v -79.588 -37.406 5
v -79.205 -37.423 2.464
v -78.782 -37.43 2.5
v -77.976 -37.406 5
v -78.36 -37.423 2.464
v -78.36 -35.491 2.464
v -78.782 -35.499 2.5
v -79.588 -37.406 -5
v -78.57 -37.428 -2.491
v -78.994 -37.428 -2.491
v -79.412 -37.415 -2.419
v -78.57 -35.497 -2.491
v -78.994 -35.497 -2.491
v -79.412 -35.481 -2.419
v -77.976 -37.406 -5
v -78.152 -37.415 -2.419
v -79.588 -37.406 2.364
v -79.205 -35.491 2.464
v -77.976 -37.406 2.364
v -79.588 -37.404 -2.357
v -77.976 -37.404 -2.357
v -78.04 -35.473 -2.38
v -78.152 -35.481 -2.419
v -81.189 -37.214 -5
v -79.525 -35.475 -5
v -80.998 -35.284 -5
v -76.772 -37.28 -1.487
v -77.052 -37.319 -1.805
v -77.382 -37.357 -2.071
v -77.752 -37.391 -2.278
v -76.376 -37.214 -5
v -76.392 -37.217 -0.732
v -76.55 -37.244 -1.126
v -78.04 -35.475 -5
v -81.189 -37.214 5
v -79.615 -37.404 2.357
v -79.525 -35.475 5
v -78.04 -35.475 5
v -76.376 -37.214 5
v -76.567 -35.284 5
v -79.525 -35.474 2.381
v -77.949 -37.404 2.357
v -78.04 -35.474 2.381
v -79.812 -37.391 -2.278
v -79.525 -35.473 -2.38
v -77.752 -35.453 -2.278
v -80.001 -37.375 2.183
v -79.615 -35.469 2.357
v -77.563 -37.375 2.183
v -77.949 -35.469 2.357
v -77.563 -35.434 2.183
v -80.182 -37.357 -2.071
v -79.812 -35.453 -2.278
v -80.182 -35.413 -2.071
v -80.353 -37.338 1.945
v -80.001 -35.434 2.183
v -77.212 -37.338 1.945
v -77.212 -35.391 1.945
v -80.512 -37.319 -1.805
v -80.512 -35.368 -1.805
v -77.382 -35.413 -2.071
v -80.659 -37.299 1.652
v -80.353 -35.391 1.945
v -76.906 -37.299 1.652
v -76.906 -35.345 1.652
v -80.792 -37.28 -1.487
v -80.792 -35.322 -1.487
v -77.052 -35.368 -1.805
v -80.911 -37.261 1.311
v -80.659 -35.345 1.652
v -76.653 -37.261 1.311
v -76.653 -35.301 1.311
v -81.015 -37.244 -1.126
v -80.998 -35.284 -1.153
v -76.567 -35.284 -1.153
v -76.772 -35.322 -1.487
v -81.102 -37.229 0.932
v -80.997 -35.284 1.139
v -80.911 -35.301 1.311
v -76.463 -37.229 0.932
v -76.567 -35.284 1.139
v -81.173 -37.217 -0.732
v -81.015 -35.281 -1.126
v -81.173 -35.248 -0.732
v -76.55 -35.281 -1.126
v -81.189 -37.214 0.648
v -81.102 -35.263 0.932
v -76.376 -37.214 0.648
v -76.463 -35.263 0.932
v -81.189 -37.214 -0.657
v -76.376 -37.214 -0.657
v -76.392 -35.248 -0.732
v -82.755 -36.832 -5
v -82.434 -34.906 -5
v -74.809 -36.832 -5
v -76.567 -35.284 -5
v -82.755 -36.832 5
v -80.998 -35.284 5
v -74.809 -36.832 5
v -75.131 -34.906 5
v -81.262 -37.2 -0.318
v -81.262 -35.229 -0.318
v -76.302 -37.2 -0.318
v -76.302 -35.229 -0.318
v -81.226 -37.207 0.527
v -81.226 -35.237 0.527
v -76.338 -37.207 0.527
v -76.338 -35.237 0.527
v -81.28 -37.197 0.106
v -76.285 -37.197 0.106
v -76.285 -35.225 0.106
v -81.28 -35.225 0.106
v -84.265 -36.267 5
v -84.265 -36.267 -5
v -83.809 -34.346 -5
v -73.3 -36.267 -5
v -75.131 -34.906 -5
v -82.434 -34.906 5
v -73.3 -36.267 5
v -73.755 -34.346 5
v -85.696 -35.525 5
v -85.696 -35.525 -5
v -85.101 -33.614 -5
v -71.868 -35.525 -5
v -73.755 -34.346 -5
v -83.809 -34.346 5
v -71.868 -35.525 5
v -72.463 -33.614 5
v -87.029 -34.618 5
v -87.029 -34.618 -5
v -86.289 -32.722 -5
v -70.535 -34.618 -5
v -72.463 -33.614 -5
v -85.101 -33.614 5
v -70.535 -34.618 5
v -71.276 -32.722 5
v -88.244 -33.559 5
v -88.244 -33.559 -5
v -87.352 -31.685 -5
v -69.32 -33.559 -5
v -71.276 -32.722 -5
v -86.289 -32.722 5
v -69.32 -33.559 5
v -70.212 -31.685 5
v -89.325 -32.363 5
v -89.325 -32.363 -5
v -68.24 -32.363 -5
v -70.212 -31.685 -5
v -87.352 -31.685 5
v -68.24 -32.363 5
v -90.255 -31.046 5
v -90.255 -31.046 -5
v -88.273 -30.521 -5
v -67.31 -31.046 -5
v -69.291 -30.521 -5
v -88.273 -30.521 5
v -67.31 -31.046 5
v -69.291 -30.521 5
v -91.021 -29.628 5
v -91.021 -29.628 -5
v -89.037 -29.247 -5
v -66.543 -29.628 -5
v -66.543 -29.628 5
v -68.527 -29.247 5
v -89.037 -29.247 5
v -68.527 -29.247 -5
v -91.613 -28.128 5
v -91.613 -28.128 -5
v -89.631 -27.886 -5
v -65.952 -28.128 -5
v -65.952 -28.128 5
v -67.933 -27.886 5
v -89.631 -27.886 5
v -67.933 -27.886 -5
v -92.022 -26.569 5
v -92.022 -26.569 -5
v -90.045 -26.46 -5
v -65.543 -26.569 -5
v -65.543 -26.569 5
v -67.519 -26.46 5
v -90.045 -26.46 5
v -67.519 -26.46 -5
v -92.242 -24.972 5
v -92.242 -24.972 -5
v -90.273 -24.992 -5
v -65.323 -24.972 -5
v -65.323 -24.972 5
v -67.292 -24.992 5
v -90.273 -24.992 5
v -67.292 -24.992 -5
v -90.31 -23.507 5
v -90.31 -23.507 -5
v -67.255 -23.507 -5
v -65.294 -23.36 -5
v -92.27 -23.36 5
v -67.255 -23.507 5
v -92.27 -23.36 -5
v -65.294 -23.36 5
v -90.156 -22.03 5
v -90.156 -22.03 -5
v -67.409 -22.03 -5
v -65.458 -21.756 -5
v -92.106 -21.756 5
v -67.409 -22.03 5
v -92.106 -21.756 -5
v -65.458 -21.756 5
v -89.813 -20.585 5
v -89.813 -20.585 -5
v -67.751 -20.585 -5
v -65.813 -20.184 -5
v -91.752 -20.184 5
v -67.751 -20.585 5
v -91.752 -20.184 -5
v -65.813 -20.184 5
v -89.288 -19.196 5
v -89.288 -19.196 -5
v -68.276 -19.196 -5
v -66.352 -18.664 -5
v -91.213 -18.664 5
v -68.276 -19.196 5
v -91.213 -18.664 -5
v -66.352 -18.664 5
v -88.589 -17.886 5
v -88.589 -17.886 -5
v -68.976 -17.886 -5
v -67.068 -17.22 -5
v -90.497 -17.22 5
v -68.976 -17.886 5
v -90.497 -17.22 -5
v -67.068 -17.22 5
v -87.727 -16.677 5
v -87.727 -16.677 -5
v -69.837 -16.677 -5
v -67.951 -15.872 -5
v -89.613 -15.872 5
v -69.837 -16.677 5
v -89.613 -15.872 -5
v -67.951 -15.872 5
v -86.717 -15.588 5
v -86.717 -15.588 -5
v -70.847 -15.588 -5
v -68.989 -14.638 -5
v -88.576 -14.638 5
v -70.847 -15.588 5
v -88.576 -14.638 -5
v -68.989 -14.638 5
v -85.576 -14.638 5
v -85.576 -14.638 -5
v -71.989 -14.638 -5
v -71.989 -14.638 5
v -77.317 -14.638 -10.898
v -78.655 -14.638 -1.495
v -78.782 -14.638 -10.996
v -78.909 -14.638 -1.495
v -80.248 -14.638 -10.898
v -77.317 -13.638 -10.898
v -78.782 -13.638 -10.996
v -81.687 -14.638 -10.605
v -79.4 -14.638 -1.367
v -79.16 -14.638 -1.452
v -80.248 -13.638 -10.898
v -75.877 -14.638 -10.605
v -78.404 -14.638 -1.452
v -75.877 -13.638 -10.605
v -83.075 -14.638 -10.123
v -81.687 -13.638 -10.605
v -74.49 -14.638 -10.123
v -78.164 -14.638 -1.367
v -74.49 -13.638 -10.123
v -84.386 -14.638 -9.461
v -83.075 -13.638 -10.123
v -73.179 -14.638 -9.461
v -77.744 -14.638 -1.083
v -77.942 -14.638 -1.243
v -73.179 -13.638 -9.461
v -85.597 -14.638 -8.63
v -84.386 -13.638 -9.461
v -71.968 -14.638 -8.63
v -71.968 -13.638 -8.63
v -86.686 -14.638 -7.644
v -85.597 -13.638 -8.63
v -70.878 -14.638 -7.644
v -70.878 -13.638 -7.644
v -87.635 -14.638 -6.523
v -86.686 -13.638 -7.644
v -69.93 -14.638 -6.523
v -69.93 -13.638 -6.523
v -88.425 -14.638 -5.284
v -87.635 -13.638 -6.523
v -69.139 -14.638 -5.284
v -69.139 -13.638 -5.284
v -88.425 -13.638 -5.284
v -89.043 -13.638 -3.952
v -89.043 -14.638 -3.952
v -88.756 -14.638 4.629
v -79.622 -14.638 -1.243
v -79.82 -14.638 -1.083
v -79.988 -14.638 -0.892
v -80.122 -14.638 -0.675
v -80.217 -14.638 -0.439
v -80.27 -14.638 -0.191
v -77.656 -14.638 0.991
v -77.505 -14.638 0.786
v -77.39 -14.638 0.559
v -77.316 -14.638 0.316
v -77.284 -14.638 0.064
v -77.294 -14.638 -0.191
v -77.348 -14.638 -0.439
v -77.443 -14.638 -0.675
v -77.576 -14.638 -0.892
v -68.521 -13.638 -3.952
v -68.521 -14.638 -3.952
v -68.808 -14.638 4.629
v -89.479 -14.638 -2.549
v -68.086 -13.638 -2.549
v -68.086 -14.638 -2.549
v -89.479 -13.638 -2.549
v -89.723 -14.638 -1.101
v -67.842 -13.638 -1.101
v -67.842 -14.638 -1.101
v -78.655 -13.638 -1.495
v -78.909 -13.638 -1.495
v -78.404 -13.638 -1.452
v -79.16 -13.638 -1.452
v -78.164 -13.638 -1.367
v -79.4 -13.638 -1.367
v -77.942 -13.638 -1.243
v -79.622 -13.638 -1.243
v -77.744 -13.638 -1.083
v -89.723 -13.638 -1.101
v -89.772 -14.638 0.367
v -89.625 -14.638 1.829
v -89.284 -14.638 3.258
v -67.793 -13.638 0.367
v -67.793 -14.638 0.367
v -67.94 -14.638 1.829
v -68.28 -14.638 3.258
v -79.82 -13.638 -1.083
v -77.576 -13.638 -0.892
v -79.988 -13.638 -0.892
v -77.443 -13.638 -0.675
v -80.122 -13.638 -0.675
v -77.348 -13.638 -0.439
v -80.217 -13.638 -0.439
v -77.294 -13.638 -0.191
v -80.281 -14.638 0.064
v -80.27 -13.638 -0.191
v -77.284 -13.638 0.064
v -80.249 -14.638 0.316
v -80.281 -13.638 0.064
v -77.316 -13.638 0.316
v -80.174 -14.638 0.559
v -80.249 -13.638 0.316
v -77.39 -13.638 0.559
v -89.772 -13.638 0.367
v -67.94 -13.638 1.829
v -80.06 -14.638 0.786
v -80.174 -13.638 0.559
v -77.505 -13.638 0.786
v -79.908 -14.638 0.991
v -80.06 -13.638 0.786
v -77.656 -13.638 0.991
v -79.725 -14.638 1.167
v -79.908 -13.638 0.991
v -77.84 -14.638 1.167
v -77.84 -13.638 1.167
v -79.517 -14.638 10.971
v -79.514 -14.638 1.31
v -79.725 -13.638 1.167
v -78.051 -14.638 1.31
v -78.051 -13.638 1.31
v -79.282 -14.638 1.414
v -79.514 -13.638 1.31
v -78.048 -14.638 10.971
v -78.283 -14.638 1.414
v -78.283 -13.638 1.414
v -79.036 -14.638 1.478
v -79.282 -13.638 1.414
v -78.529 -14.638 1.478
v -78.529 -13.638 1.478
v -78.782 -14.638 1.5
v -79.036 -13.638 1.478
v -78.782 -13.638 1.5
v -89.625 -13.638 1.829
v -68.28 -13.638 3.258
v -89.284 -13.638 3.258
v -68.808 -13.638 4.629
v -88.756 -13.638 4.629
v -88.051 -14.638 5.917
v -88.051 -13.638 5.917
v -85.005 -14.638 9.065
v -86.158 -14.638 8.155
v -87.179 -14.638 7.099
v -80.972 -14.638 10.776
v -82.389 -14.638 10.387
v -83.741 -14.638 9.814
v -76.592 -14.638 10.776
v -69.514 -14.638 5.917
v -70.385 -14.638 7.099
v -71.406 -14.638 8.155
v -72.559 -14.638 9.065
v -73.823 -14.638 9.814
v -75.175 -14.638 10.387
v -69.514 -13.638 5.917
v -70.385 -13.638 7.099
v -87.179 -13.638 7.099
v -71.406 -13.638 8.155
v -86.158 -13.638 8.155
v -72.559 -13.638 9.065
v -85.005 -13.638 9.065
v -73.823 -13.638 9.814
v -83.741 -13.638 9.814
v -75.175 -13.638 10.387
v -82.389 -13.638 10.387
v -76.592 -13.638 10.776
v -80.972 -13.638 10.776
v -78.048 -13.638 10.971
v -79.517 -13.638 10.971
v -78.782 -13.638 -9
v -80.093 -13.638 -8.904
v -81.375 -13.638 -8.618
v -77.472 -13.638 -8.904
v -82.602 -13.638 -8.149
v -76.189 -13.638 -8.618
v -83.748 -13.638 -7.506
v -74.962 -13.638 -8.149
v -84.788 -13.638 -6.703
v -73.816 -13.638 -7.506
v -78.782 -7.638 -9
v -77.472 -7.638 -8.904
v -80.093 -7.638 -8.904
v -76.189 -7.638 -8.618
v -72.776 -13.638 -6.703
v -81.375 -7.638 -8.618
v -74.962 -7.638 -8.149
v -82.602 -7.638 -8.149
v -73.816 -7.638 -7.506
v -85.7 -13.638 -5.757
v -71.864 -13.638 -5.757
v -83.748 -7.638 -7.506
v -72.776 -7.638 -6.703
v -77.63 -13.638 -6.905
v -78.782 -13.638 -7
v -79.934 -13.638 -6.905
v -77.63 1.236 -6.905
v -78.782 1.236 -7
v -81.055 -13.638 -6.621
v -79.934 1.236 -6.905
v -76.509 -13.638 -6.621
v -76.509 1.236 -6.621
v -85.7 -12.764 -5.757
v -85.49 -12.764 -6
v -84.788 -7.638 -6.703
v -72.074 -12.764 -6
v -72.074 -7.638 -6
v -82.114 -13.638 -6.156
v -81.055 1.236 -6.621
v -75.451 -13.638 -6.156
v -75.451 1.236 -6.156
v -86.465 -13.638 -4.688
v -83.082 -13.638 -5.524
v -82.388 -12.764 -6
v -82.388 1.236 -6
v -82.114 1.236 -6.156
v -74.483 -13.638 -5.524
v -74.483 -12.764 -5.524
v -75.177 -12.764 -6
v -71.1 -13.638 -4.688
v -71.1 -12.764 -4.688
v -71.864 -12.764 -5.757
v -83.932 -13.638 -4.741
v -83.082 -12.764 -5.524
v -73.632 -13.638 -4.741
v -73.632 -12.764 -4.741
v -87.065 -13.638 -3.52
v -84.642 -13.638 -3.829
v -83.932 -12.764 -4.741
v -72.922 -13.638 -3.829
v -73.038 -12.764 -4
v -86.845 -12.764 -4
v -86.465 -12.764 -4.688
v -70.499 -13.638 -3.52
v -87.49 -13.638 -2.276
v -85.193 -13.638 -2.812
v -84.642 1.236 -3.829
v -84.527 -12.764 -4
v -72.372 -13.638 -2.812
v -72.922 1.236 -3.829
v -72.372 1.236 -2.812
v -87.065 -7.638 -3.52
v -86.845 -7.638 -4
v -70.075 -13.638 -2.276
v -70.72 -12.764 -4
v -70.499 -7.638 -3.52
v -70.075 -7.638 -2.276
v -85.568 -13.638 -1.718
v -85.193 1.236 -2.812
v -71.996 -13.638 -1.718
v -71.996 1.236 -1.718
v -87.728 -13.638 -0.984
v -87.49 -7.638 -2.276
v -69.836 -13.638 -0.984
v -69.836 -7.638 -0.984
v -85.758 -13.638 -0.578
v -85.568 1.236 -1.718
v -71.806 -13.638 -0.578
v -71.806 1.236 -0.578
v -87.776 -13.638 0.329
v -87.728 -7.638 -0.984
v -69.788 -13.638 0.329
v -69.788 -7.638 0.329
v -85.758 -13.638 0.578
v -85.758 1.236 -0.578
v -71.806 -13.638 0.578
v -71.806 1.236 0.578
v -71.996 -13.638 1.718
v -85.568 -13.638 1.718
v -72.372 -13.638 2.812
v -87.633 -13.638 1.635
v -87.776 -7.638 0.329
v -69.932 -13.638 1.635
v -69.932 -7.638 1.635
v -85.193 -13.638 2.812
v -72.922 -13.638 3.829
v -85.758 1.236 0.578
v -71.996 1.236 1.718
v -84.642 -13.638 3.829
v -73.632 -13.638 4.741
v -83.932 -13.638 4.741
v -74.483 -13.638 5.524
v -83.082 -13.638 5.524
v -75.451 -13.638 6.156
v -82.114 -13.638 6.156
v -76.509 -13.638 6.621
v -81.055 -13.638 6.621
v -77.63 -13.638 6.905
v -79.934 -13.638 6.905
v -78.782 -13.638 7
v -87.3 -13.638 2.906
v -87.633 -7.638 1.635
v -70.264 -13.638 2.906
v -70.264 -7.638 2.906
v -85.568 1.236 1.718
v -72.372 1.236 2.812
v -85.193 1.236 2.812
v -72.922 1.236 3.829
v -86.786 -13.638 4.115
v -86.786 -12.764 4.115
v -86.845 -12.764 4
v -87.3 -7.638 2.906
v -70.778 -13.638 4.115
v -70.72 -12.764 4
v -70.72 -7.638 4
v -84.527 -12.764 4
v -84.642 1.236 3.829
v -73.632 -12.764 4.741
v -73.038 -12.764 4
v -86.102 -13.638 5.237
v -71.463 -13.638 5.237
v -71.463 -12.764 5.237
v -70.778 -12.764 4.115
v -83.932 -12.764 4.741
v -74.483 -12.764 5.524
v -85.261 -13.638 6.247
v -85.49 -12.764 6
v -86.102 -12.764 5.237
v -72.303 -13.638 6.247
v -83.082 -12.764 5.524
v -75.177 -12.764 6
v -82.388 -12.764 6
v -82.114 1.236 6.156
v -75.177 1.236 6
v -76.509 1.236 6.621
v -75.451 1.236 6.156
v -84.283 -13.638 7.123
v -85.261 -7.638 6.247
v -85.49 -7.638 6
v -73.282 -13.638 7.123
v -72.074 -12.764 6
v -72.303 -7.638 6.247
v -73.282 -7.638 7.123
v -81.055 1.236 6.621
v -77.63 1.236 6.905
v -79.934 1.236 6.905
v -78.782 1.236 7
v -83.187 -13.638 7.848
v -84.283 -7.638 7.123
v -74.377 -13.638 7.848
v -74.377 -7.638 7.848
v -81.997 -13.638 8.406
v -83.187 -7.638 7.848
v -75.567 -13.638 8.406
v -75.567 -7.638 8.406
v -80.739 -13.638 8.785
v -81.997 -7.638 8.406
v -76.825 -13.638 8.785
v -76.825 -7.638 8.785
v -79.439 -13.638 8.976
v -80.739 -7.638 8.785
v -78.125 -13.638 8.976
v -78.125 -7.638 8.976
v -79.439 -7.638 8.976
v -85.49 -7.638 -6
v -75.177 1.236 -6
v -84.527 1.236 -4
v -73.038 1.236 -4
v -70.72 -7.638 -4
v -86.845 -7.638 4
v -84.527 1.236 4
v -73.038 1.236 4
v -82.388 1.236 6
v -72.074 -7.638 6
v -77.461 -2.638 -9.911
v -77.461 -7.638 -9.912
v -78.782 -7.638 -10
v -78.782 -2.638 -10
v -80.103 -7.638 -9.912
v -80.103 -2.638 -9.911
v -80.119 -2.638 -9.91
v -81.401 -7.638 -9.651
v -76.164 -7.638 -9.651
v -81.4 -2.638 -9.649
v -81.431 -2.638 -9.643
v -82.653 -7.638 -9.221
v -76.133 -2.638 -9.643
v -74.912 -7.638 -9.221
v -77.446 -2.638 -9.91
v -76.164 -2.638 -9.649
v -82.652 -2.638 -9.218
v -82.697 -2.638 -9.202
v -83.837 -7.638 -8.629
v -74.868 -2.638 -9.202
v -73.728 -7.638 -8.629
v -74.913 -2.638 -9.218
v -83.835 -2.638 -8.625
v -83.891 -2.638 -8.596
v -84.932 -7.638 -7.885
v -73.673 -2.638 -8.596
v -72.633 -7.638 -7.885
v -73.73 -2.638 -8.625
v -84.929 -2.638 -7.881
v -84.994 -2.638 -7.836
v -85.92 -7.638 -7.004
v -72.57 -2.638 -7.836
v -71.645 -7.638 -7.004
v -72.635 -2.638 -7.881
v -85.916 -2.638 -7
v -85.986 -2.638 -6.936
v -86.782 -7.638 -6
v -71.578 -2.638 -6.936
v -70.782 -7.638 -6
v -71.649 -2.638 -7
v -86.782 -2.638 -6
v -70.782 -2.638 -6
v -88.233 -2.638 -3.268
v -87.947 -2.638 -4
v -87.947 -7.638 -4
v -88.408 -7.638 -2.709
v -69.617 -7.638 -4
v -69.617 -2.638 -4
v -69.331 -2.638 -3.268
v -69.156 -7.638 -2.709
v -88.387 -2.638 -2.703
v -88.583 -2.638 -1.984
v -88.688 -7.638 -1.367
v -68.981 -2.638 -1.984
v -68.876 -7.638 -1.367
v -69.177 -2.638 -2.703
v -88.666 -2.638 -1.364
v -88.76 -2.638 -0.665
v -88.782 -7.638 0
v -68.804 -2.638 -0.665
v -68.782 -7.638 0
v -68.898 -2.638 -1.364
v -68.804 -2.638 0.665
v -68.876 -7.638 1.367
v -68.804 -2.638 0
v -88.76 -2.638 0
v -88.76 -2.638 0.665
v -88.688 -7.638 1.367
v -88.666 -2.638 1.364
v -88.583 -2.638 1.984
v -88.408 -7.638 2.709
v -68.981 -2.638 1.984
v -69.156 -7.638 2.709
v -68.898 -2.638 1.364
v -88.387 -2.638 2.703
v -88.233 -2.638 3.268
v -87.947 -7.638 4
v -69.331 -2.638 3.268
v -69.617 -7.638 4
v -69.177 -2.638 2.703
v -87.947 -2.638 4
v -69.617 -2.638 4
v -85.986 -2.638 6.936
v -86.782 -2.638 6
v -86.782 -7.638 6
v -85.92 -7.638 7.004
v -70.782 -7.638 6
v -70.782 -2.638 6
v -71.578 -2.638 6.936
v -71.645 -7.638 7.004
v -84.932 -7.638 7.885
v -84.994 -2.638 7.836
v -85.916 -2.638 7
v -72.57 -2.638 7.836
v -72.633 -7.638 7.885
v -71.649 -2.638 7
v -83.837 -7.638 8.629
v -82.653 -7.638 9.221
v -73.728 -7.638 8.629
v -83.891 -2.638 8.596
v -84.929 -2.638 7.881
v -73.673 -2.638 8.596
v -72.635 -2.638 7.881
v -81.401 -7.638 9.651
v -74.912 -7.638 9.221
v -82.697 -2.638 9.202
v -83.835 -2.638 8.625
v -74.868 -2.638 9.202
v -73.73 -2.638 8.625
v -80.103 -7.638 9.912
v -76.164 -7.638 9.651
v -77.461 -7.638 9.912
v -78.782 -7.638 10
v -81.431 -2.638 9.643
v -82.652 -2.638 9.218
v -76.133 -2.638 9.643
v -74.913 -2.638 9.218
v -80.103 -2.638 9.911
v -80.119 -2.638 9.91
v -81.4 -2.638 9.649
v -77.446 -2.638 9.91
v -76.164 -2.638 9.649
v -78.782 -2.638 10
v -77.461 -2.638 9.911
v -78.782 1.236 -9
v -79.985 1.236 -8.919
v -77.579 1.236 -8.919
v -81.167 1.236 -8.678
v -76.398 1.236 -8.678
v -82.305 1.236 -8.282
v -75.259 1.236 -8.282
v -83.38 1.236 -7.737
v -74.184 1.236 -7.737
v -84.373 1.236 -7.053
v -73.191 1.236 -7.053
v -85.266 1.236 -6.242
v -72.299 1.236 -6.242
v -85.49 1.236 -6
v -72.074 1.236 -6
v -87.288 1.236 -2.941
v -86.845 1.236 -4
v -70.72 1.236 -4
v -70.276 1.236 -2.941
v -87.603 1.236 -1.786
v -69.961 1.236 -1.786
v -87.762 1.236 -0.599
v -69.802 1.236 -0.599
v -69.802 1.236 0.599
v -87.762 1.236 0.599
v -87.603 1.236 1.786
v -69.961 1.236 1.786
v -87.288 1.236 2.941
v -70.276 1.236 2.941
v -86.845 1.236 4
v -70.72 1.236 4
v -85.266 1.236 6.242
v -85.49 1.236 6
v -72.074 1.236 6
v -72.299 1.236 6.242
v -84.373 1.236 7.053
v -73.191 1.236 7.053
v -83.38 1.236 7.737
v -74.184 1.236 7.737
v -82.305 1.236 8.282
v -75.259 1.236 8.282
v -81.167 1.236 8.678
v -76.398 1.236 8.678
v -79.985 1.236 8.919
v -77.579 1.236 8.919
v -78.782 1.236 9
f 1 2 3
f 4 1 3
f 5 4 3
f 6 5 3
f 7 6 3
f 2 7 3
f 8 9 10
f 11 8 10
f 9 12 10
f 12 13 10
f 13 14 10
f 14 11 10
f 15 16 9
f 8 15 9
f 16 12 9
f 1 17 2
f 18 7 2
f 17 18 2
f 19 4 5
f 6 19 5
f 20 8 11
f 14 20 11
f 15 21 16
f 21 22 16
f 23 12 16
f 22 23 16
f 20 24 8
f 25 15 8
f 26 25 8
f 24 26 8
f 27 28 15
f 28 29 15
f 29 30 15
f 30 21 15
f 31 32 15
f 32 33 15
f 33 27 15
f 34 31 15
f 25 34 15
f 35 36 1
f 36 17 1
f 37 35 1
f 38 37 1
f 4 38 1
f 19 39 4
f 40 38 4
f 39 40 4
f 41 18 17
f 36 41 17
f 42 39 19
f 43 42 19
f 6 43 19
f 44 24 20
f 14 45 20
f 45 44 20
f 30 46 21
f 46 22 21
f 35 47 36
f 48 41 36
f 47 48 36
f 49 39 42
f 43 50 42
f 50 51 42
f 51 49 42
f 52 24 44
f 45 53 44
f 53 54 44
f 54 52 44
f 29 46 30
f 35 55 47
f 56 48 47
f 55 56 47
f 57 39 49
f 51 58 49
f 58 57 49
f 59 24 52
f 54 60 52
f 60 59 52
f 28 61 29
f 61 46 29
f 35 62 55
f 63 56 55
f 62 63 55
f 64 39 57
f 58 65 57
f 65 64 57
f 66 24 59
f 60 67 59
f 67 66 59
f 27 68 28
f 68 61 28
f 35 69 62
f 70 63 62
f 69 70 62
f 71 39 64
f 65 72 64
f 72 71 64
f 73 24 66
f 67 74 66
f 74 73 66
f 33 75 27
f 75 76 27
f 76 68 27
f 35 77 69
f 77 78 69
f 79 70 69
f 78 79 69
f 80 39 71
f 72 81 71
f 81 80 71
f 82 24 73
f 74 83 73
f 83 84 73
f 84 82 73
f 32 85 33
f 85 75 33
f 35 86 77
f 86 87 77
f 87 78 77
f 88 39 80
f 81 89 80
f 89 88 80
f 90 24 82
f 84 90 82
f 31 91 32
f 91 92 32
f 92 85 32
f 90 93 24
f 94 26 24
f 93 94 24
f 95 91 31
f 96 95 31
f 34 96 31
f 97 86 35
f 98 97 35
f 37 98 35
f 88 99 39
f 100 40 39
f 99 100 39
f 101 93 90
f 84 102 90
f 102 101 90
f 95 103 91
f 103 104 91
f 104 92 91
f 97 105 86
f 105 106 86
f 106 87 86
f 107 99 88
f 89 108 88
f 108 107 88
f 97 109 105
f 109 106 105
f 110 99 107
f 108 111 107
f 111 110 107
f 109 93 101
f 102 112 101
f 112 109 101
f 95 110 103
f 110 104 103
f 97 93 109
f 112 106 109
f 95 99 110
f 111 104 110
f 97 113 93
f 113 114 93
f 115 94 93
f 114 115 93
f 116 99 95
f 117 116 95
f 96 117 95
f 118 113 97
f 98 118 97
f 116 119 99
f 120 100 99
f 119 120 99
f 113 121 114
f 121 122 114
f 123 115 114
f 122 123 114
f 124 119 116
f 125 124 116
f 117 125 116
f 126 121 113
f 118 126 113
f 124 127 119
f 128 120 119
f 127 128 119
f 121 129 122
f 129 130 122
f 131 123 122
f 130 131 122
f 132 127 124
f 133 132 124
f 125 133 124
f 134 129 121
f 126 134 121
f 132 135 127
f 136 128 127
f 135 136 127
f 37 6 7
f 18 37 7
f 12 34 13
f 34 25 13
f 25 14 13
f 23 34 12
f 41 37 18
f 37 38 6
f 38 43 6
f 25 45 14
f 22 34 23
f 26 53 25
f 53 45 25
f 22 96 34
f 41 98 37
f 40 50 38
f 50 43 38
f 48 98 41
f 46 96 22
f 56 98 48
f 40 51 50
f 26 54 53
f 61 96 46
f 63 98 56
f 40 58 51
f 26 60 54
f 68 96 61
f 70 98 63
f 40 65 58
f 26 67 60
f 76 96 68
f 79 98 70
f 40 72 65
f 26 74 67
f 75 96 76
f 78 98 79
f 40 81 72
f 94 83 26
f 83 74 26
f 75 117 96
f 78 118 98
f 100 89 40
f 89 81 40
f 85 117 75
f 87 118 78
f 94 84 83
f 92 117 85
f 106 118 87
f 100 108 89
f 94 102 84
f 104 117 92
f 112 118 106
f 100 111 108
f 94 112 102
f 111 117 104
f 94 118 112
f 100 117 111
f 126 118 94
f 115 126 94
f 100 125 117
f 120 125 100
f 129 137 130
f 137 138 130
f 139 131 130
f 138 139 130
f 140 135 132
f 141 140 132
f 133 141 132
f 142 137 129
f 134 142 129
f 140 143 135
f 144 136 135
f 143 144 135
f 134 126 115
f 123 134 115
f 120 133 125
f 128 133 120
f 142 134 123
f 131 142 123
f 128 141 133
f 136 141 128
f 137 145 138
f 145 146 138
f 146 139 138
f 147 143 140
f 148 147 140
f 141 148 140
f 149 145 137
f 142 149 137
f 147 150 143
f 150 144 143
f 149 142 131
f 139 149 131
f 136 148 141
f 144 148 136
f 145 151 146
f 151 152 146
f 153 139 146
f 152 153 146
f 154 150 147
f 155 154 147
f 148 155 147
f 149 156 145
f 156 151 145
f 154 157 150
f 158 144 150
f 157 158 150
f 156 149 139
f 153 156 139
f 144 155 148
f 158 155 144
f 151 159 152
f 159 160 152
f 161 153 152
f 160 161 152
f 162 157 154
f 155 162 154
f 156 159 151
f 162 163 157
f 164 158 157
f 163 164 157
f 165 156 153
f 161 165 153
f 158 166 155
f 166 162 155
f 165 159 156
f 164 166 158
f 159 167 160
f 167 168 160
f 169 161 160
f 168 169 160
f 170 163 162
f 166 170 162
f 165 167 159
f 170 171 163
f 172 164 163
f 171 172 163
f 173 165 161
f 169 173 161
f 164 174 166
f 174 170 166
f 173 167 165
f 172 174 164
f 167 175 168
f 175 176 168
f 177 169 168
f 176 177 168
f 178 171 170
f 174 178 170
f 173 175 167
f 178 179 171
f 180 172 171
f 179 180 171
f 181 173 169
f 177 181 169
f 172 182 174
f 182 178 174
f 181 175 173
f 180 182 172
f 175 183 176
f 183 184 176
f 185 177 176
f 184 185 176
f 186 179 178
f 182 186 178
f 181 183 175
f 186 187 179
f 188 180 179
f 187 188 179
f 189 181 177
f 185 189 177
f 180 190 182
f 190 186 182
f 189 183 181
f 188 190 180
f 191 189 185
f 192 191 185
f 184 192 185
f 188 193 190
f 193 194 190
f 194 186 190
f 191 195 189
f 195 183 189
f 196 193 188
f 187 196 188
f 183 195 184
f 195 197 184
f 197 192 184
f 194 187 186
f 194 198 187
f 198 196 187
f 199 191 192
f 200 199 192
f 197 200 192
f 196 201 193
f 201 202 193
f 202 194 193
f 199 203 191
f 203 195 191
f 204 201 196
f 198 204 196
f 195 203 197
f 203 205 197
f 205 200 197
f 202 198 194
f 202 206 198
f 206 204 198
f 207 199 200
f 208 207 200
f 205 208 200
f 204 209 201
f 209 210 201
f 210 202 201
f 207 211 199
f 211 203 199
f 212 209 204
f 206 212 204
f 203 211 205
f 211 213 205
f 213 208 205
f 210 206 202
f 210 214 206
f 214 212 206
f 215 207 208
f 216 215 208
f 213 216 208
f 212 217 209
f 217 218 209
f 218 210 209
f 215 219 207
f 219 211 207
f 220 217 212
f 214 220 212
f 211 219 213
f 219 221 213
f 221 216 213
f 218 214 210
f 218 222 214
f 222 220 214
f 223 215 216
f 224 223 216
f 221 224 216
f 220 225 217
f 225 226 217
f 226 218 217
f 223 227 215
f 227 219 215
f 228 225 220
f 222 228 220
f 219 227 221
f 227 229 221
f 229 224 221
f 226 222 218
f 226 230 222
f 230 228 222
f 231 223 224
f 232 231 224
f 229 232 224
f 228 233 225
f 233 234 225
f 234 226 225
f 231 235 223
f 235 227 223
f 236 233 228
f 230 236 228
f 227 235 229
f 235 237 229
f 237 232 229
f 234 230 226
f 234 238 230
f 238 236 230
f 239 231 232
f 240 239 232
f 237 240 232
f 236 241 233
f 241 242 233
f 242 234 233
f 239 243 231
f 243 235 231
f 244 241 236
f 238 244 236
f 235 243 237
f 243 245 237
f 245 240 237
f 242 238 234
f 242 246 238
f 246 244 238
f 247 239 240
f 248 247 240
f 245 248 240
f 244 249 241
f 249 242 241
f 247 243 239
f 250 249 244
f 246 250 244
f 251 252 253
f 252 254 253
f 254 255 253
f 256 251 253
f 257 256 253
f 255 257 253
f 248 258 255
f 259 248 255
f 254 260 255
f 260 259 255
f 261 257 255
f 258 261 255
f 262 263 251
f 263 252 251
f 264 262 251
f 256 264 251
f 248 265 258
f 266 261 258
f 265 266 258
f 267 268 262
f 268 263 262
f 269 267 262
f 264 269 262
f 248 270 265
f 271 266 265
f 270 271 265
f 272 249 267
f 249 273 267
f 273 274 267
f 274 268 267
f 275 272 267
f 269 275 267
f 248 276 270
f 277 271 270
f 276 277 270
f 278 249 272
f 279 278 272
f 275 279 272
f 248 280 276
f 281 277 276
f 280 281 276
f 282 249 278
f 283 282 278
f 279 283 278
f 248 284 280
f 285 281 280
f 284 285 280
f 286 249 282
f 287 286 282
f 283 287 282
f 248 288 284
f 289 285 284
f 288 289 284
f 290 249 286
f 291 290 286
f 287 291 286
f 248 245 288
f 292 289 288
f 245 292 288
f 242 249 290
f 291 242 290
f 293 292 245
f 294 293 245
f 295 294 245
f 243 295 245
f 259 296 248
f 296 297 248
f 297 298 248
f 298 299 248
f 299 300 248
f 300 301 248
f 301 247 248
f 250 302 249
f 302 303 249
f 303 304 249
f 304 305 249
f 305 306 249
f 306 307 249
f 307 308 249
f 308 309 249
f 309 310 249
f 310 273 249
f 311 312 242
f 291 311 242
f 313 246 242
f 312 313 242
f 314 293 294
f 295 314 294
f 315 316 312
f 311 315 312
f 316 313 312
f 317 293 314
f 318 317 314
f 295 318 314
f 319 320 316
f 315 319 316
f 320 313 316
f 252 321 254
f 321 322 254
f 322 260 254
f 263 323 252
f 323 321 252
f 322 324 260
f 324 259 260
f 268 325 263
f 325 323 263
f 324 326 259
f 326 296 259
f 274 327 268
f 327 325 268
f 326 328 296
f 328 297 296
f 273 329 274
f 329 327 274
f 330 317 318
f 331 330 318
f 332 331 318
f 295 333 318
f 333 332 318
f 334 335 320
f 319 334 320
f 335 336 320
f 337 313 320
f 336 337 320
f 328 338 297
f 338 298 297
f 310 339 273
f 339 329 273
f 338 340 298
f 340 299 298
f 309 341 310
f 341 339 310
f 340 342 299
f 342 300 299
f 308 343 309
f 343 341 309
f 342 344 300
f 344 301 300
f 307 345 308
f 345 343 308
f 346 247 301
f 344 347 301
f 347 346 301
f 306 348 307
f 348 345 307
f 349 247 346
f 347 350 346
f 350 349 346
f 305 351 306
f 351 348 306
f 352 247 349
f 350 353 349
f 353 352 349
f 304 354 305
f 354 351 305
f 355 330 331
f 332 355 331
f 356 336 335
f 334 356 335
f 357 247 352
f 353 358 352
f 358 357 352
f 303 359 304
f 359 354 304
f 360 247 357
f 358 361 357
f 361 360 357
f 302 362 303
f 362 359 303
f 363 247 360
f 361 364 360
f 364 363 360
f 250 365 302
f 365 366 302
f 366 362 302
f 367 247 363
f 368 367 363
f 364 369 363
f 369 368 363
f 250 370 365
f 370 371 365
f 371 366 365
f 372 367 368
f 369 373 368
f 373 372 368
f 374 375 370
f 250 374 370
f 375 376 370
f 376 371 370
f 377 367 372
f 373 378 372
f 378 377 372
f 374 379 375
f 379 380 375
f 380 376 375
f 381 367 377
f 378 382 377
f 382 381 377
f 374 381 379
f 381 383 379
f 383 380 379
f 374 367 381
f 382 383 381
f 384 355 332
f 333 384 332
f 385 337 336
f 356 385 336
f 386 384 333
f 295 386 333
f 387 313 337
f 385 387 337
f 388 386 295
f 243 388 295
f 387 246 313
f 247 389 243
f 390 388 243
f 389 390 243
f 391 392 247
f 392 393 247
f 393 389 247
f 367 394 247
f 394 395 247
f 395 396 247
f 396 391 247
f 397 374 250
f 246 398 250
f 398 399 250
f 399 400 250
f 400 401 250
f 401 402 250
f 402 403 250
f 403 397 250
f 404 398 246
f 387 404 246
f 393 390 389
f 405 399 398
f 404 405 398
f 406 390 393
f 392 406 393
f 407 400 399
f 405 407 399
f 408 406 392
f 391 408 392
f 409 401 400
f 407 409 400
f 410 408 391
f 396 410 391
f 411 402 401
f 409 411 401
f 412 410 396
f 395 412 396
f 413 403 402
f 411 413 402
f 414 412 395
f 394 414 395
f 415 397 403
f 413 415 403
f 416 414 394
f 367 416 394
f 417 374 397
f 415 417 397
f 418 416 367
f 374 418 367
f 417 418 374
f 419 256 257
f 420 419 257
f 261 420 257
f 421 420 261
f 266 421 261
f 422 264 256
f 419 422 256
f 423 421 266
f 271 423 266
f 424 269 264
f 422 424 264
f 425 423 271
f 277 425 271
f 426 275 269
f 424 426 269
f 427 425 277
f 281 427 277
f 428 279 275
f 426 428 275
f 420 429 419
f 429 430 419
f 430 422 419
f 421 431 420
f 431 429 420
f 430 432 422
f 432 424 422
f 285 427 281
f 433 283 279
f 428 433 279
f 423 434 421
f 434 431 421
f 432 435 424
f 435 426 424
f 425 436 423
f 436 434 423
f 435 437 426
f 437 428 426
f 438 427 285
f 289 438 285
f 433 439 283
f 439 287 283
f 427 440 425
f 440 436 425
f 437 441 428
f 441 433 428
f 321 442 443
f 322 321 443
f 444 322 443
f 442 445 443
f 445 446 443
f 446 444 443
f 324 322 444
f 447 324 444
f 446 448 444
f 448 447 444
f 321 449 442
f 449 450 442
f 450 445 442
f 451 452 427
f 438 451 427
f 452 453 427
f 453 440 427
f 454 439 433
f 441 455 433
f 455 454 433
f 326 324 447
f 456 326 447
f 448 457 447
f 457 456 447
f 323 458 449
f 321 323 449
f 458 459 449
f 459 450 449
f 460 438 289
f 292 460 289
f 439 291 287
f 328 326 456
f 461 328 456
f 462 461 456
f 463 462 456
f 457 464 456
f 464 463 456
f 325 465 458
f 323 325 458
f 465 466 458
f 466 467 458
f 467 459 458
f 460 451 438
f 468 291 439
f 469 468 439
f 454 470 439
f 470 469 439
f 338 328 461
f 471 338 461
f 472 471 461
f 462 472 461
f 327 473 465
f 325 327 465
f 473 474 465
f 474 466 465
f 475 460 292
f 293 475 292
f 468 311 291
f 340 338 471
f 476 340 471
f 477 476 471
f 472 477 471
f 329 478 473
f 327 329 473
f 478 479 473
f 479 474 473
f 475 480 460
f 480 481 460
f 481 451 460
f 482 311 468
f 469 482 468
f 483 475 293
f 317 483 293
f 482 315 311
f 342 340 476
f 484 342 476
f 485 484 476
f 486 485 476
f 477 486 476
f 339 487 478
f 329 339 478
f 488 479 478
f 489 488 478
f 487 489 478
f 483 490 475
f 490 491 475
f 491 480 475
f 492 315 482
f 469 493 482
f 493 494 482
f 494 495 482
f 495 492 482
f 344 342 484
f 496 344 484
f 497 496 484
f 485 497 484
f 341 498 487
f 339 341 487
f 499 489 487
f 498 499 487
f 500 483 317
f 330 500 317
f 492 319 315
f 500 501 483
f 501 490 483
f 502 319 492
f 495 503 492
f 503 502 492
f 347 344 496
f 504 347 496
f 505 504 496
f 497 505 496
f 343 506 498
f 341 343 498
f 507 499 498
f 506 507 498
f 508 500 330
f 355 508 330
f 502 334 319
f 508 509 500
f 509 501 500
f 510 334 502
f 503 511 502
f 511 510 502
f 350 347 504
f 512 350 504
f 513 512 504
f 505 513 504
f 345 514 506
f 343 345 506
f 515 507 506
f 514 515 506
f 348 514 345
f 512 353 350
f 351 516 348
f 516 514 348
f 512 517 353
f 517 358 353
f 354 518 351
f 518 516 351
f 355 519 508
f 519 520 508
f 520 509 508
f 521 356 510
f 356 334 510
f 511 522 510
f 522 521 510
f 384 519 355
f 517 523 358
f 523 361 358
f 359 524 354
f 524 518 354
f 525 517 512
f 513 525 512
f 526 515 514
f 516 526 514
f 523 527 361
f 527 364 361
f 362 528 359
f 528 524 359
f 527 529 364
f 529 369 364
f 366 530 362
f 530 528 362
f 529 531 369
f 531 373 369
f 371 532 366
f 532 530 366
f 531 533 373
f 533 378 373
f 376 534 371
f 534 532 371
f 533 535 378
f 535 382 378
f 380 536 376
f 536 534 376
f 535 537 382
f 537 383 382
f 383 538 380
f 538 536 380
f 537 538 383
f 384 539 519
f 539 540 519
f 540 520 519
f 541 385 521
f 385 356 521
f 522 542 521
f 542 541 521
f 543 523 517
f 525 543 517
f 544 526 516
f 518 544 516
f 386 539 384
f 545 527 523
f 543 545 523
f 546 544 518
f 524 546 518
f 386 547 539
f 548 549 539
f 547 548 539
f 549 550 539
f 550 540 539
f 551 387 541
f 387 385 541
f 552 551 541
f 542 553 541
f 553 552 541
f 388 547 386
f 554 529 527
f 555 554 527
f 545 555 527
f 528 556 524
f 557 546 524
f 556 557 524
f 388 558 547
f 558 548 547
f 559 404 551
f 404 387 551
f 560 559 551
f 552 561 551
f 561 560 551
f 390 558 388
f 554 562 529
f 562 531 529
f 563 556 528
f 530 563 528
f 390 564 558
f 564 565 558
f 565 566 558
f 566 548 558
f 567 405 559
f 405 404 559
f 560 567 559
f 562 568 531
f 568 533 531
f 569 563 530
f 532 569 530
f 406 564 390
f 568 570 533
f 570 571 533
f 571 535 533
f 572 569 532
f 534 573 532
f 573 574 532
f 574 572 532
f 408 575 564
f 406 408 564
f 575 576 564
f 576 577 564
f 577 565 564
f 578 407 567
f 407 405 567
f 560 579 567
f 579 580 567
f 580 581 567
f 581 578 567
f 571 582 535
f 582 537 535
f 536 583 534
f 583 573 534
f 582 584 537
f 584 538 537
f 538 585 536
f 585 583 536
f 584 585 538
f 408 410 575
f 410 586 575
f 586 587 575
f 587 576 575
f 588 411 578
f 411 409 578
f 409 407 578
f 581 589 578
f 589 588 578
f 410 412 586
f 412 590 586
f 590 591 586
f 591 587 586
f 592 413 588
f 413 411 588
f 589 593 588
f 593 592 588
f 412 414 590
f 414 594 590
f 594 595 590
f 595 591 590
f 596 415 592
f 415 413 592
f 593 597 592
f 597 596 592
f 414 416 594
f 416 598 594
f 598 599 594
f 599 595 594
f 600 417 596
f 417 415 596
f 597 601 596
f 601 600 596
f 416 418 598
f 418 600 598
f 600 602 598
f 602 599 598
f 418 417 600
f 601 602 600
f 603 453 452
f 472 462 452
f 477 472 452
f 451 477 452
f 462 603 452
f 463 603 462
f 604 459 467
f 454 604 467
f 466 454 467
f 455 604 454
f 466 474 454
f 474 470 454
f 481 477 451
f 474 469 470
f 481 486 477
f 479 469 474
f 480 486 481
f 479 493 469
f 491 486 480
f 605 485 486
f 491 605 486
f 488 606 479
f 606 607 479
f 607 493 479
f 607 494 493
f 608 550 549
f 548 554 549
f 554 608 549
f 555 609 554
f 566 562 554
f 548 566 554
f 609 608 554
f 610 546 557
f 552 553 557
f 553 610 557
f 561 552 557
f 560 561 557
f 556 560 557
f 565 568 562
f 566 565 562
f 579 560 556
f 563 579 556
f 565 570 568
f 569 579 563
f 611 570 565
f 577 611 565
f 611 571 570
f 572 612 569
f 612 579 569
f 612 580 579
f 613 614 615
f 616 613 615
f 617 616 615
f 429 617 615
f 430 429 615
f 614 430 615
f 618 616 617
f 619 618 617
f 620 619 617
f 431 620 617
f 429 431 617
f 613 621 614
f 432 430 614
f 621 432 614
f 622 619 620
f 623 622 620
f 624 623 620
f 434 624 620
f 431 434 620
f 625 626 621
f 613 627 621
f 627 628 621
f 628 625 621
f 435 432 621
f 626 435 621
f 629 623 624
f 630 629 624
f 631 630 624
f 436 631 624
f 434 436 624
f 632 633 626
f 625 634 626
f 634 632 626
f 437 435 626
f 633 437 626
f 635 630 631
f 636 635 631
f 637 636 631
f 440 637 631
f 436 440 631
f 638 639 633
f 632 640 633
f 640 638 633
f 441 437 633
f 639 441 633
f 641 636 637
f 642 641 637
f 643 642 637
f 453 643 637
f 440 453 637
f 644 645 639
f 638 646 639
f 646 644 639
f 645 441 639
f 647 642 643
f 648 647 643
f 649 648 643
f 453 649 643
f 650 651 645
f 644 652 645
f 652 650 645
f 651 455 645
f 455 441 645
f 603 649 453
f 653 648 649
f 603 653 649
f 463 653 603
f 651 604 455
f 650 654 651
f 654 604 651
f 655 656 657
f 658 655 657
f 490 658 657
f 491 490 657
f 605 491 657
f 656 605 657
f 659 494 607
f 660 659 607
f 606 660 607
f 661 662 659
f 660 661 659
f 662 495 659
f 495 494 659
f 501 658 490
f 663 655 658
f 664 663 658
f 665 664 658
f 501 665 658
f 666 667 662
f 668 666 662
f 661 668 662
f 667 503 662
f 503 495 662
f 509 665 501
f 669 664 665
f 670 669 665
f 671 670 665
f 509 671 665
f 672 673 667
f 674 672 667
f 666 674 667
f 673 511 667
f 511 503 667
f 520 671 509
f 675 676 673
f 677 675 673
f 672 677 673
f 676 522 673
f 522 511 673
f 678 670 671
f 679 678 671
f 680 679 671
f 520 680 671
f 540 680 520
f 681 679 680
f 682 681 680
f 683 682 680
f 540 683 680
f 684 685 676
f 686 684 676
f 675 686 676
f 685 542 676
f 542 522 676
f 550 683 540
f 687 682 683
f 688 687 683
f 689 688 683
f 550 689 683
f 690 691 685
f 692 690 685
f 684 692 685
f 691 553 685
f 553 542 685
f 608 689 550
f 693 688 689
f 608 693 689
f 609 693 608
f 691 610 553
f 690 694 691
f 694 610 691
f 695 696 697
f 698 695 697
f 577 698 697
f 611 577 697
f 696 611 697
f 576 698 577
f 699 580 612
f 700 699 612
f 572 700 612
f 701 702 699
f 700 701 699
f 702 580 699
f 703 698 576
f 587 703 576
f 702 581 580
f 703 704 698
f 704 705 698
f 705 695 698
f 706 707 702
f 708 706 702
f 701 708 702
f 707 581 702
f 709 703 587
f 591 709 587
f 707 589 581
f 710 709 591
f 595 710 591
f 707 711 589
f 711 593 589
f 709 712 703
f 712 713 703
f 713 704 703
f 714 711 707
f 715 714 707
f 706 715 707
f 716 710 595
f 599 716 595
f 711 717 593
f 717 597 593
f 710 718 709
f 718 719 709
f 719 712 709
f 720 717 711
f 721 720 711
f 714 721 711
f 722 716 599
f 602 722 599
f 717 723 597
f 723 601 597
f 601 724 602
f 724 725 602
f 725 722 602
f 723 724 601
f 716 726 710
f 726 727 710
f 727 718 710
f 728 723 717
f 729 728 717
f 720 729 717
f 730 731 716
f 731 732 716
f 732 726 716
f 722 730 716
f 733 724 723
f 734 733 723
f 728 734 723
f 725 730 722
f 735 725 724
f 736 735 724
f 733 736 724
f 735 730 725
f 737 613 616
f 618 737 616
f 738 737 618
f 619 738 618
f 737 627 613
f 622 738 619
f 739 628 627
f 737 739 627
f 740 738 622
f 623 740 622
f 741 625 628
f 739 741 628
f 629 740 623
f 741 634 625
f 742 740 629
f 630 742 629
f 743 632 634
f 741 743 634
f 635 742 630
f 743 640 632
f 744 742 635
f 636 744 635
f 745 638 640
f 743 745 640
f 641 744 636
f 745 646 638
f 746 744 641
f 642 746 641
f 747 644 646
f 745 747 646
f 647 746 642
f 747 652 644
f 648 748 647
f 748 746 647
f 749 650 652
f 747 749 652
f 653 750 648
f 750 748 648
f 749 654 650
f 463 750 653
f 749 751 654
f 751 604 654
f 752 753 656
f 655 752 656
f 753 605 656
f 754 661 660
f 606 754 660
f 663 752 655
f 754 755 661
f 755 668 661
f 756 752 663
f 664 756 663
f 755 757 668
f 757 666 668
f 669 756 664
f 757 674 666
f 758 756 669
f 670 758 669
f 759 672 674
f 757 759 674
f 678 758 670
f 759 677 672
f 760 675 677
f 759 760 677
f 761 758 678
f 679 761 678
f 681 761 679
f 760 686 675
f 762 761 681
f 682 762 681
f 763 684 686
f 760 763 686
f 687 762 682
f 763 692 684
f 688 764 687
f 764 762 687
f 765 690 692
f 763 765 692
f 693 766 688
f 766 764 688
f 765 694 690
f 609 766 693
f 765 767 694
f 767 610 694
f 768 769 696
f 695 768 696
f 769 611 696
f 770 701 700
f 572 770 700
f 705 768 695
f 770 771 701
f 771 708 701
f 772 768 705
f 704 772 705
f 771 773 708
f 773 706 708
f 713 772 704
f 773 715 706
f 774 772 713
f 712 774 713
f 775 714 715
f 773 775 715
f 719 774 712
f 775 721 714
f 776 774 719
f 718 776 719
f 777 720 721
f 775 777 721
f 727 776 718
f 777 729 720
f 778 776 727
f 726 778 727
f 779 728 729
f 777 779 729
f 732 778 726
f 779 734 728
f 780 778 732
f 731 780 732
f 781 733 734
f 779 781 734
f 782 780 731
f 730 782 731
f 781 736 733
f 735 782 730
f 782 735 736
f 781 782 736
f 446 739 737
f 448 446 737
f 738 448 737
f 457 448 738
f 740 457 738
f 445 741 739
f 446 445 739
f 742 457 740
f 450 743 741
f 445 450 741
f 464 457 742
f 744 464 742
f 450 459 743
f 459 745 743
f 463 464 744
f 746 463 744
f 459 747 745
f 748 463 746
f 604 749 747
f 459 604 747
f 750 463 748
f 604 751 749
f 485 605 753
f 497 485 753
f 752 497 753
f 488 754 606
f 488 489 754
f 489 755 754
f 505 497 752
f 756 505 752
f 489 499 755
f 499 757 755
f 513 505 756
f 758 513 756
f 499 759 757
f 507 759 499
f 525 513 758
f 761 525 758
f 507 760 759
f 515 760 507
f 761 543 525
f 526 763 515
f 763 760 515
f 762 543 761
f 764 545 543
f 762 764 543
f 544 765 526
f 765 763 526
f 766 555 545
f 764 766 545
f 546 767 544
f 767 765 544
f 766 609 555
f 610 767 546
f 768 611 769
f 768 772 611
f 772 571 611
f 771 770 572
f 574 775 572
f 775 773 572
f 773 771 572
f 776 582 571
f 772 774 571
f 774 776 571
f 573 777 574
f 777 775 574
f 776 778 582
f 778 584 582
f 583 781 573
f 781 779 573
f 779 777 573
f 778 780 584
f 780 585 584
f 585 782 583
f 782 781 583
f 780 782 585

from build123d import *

# Parameters (mm, degrees)
CROQUIS2_W              = 26
CROQUIS2_H              = 2
CORTAR_EXTRUIR1_DEPTH   = 14
CROQUIS3_W              = 27
CROQUIS3_H              = 10
SALIENTE_EXTRUIR1_DEPTH = 24
CORTAR_EXTRUIR2_DEPTH   = 10
CROQUIS5_R              = 1.5
CORTAR_EXTRUIR3_DEPTH   = 24
CROQUIS6_R              = 2.5
CORTAR_EXTRUIR4_DEPTH   = 24


with BuildPart() as part:
    # Croquis1 → Revolución1 (revolve)
    with BuildSketch(Plane.XY):
        Polygon((-89.778094977, -14.637996222), (-78.782252338, -14.637996222), (-78.782252338, -13.637996222), (-85.782252338, -13.637996222), (-85.782252338, 1.235955759), (-87.782252338, 1.235955759), (-88.782252338, -2.637996222), (-88.782252338, -7.637996222), (-87.782252338, -7.637996222), (-87.782252338, -13.637996222), (-89.778094977, -13.637996222), align=None)
    revolve(axis=Axis((-78.782252338, -14.637996222, 0), (0, 1, 0)))

    # Croquis2 → Cortar-Extruir1 (cut)
    with BuildSketch(Plane(origin=(0, 1.235955759, 0), x_dir=(1, 0, 0), z_dir=(0, 1, 0))):
        with Locations((-78.782252338, -5)):
            Rectangle(CROQUIS2_W, CROQUIS2_H)
        with Locations((-78.782252338, 5)):
            Rectangle(CROQUIS2_W, CROQUIS2_H)
    extrude(amount=-CORTAR_EXTRUIR1_DEPTH, mode=Mode.SUBTRACT)

    # Croquis3 → Saliente-Extruir1 (add)
    with BuildSketch(Plane.XZ.offset(14.637996222)):
        with Locations((-78.782252338, 0)):
            Rectangle(CROQUIS3_W, CROQUIS3_H)
    extrude(amount=SALIENTE_EXTRUIR1_DEPTH)

    # Croquis4 → Cortar-Extruir2 (cut)
    with BuildSketch(Plane(origin=(0, 0, -5), x_dir=(-1, 0, 0), z_dir=(0, 0, -1))):
        with BuildLine():
            Line((92.282252338, -38.637996222), (92.282252338, -23.930005944))
            ThreePointArc((92.282252338, -23.930005944), (78.782252338, -37.430005944), (65.282252338, -23.930005944))
            Line((65.282252338, -23.930005944), (65.282252338, -38.637996222))
            Line((65.282252338, -38.637996222), (92.282252338, -38.637996222))
        make_face()
        with BuildLine():
            Line((92.282252338, -14.637996222), (88.575543682, -14.637996222))
            ThreePointArc((88.575543682, -14.637996222), (91.321379763, -18.927978012), (92.282252338, -23.930005944))
            Line((92.282252338, -23.930005944), (92.282252338, -14.637996222))
        make_face()
        with BuildLine():
            Line((65.282252338, -14.637996222), (65.282252338, -23.930005944))
            ThreePointArc((65.282252338, -23.930005944), (66.243124914, -18.927978012), (68.988960995, -14.637996222))
            Line((68.988960995, -14.637996222), (65.282252338, -14.637996222))
        make_face()
        with BuildLine():
            ThreePointArc((71.988960995, -14.637996222), (78.782252338, -35.498695349), (85.575543682, -14.637996222))
            Line((85.575543682, -14.637996222), (71.988960995, -14.637996222))
        make_face()
    extrude(amount=-CORTAR_EXTRUIR2_DEPTH, mode=Mode.SUBTRACT)

    # Croquis5 → Cortar-Extruir3 (cut)
    with BuildSketch(Plane(origin=(0, -13.637996222, 0), x_dir=(1, 0, 0), z_dir=(0, 1, 0))):
        with Locations((-78.782252338, 0)):
            Circle(CROQUIS5_R)
    extrude(amount=-CORTAR_EXTRUIR3_DEPTH, mode=Mode.SUBTRACT)

    # Croquis6 → Cortar-Extruir4 (cut)
    with BuildSketch(Plane.XZ.offset(14.637996222)):
        with Locations((-78.782252338, 0)):
            Circle(CROQUIS6_R)
    extrude(amount=CORTAR_EXTRUIR4_DEPTH, mode=Mode.SUBTRACT)


solid = part.part
